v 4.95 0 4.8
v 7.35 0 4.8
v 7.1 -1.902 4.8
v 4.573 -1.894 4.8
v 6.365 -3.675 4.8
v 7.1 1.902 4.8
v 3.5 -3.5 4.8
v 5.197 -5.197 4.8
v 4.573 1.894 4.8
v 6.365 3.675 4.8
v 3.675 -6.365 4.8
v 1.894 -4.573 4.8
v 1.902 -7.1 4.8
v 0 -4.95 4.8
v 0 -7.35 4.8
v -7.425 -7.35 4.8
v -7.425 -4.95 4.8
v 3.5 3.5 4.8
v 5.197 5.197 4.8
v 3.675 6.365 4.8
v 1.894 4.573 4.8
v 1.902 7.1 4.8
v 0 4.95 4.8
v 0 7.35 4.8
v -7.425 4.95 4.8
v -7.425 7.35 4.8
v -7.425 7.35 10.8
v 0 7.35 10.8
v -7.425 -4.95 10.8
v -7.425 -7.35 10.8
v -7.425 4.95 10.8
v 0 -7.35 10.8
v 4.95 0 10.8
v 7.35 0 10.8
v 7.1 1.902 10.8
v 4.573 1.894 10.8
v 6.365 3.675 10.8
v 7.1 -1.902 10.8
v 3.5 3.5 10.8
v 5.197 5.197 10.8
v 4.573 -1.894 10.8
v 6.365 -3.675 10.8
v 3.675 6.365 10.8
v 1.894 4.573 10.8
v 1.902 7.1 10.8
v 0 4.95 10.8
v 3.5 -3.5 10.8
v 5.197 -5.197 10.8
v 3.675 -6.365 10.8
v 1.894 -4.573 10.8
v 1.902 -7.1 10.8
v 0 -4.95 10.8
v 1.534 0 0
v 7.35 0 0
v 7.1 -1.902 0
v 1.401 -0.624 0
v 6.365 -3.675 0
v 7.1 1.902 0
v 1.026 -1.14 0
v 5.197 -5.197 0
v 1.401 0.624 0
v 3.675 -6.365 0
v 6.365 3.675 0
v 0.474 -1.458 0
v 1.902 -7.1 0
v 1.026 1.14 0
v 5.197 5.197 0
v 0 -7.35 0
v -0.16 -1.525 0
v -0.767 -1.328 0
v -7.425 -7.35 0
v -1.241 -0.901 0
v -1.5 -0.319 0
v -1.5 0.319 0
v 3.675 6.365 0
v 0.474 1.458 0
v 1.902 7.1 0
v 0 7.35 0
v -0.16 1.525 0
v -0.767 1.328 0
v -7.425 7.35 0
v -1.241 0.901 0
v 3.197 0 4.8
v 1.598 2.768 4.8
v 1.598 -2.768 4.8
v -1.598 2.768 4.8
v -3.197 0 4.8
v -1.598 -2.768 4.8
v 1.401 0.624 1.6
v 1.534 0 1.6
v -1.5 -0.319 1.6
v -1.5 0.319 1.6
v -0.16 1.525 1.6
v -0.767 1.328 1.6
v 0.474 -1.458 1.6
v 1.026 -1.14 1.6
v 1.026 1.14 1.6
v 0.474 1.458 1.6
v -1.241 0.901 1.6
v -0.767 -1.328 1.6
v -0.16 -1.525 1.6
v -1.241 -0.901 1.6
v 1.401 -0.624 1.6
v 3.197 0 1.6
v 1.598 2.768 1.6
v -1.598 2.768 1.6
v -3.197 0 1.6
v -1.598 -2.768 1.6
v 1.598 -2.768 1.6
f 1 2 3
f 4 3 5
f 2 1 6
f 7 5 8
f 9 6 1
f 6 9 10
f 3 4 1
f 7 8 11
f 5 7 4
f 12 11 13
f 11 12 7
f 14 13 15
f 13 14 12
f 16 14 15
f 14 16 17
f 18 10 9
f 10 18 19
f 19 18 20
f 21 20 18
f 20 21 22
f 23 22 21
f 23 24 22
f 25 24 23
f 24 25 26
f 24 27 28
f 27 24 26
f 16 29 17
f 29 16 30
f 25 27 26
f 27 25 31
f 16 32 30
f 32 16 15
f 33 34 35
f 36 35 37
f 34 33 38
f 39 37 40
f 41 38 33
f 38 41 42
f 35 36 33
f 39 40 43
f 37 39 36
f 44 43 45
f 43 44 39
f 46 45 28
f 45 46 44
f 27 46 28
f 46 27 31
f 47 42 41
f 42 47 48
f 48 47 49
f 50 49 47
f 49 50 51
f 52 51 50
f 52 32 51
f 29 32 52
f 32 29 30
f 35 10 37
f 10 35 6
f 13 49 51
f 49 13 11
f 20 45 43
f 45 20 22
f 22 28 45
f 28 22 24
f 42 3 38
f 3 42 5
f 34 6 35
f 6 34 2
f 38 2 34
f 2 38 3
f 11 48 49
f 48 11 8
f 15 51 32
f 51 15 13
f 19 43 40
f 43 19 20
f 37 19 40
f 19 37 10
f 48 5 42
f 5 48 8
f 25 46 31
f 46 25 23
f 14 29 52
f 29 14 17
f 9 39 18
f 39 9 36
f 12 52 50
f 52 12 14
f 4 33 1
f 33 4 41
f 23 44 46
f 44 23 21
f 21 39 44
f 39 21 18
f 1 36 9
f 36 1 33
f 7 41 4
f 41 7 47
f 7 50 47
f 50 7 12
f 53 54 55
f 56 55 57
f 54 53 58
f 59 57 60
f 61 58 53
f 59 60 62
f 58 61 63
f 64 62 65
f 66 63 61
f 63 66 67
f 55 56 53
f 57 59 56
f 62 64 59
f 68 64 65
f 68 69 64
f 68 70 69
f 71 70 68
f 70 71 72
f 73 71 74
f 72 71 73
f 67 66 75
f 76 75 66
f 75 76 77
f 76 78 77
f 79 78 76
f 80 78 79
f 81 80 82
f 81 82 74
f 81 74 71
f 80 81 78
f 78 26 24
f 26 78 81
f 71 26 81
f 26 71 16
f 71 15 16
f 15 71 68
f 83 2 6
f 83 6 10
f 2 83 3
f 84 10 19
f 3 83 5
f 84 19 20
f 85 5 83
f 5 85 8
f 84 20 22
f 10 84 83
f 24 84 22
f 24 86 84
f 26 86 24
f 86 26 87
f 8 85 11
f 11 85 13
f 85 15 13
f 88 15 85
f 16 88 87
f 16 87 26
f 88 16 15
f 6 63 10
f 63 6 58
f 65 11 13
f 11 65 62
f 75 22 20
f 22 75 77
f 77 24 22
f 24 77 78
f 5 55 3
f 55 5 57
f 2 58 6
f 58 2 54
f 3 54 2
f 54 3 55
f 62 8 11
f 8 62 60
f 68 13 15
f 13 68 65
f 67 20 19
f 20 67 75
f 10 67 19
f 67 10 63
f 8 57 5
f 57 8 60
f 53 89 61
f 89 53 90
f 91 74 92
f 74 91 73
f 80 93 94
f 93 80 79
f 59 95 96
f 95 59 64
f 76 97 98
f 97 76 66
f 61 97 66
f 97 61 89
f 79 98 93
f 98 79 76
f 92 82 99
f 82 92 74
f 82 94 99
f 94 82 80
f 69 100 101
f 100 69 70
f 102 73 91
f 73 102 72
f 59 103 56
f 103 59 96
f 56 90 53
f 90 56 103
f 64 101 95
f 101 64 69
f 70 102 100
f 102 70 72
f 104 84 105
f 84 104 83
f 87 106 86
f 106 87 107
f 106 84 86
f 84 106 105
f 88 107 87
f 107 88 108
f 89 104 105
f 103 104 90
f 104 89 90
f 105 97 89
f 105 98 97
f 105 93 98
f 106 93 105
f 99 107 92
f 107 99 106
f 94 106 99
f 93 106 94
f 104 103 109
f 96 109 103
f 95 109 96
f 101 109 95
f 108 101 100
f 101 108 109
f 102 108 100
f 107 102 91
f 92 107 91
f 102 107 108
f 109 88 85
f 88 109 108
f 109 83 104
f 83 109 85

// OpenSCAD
// file: ../lib/hole.scad
module cylinder_outer(h,d=undef,d1=undef,d2=undef,fn=15) {
	fudge = cos(180/fn);
	cylinder(h=h,d=d/fudge,d1=d1/fudge,d2=d2/fudge,$fn=fn);
}

module hole(d, height, countersink=0, extra_above=false) {
	height = height - countersink;
	translate([0, 0, -(height+countersink)]) {
		translate([0, 0, height+0.001]) cylinder_outer(d1=d, d2=d*1.5, h=countersink);
		if (extra_above) {
			translate([0, 0, height+0.001]) cylinder_outer(d1=d, d2=d*2, h=countersink*3/2);
		}
		if (height > 0)
			translate([0, 0, -2]) cylinder_outer(d=d, h=height+2.1);
	}
}

module nut_trap(w, h, sides){
	cylinder(r = w / 2 / cos(180 / 6) + 0.05, h=h, $fn=6);
}

module rim(id, od, h) {
	difference() {
		cylinder_outer(h=h, d=od);
		translate([0, 0, -1]) cylinder(h=h+2, d=id);
	}
}

rim(8.5, 13, 2);
// main file
width = 9.9;
length = width * 1.25;
hole = 3;
thickness = 4.8;
height = thickness * 2.25;

use <../lib/hole.scad>;

h = height - thickness;
l = length - width/2;

module retainer_inner(t, w, l) {
	linear_extrude(t) {
		circle(d=w);
		translate([-l/2, 0, 0]) square([l, w], center=true);
	}
}

translate([0, 0, thickness]) difference() {
	retainer_inner(h, width+thickness, l);
	translate([0, 0, -0.001]) retainer_inner(h+0.002, width, l+0.002);
}

difference() {
	retainer_inner(thickness, width+thickness, l);
	translate([0, 0, -0.001]) cylinder_outer(thickness+0.002, hole);
	translate([0, 0, thickness/3]) nut_trap(5.45, thickness * 2/3 + 0.01, 6);
}
